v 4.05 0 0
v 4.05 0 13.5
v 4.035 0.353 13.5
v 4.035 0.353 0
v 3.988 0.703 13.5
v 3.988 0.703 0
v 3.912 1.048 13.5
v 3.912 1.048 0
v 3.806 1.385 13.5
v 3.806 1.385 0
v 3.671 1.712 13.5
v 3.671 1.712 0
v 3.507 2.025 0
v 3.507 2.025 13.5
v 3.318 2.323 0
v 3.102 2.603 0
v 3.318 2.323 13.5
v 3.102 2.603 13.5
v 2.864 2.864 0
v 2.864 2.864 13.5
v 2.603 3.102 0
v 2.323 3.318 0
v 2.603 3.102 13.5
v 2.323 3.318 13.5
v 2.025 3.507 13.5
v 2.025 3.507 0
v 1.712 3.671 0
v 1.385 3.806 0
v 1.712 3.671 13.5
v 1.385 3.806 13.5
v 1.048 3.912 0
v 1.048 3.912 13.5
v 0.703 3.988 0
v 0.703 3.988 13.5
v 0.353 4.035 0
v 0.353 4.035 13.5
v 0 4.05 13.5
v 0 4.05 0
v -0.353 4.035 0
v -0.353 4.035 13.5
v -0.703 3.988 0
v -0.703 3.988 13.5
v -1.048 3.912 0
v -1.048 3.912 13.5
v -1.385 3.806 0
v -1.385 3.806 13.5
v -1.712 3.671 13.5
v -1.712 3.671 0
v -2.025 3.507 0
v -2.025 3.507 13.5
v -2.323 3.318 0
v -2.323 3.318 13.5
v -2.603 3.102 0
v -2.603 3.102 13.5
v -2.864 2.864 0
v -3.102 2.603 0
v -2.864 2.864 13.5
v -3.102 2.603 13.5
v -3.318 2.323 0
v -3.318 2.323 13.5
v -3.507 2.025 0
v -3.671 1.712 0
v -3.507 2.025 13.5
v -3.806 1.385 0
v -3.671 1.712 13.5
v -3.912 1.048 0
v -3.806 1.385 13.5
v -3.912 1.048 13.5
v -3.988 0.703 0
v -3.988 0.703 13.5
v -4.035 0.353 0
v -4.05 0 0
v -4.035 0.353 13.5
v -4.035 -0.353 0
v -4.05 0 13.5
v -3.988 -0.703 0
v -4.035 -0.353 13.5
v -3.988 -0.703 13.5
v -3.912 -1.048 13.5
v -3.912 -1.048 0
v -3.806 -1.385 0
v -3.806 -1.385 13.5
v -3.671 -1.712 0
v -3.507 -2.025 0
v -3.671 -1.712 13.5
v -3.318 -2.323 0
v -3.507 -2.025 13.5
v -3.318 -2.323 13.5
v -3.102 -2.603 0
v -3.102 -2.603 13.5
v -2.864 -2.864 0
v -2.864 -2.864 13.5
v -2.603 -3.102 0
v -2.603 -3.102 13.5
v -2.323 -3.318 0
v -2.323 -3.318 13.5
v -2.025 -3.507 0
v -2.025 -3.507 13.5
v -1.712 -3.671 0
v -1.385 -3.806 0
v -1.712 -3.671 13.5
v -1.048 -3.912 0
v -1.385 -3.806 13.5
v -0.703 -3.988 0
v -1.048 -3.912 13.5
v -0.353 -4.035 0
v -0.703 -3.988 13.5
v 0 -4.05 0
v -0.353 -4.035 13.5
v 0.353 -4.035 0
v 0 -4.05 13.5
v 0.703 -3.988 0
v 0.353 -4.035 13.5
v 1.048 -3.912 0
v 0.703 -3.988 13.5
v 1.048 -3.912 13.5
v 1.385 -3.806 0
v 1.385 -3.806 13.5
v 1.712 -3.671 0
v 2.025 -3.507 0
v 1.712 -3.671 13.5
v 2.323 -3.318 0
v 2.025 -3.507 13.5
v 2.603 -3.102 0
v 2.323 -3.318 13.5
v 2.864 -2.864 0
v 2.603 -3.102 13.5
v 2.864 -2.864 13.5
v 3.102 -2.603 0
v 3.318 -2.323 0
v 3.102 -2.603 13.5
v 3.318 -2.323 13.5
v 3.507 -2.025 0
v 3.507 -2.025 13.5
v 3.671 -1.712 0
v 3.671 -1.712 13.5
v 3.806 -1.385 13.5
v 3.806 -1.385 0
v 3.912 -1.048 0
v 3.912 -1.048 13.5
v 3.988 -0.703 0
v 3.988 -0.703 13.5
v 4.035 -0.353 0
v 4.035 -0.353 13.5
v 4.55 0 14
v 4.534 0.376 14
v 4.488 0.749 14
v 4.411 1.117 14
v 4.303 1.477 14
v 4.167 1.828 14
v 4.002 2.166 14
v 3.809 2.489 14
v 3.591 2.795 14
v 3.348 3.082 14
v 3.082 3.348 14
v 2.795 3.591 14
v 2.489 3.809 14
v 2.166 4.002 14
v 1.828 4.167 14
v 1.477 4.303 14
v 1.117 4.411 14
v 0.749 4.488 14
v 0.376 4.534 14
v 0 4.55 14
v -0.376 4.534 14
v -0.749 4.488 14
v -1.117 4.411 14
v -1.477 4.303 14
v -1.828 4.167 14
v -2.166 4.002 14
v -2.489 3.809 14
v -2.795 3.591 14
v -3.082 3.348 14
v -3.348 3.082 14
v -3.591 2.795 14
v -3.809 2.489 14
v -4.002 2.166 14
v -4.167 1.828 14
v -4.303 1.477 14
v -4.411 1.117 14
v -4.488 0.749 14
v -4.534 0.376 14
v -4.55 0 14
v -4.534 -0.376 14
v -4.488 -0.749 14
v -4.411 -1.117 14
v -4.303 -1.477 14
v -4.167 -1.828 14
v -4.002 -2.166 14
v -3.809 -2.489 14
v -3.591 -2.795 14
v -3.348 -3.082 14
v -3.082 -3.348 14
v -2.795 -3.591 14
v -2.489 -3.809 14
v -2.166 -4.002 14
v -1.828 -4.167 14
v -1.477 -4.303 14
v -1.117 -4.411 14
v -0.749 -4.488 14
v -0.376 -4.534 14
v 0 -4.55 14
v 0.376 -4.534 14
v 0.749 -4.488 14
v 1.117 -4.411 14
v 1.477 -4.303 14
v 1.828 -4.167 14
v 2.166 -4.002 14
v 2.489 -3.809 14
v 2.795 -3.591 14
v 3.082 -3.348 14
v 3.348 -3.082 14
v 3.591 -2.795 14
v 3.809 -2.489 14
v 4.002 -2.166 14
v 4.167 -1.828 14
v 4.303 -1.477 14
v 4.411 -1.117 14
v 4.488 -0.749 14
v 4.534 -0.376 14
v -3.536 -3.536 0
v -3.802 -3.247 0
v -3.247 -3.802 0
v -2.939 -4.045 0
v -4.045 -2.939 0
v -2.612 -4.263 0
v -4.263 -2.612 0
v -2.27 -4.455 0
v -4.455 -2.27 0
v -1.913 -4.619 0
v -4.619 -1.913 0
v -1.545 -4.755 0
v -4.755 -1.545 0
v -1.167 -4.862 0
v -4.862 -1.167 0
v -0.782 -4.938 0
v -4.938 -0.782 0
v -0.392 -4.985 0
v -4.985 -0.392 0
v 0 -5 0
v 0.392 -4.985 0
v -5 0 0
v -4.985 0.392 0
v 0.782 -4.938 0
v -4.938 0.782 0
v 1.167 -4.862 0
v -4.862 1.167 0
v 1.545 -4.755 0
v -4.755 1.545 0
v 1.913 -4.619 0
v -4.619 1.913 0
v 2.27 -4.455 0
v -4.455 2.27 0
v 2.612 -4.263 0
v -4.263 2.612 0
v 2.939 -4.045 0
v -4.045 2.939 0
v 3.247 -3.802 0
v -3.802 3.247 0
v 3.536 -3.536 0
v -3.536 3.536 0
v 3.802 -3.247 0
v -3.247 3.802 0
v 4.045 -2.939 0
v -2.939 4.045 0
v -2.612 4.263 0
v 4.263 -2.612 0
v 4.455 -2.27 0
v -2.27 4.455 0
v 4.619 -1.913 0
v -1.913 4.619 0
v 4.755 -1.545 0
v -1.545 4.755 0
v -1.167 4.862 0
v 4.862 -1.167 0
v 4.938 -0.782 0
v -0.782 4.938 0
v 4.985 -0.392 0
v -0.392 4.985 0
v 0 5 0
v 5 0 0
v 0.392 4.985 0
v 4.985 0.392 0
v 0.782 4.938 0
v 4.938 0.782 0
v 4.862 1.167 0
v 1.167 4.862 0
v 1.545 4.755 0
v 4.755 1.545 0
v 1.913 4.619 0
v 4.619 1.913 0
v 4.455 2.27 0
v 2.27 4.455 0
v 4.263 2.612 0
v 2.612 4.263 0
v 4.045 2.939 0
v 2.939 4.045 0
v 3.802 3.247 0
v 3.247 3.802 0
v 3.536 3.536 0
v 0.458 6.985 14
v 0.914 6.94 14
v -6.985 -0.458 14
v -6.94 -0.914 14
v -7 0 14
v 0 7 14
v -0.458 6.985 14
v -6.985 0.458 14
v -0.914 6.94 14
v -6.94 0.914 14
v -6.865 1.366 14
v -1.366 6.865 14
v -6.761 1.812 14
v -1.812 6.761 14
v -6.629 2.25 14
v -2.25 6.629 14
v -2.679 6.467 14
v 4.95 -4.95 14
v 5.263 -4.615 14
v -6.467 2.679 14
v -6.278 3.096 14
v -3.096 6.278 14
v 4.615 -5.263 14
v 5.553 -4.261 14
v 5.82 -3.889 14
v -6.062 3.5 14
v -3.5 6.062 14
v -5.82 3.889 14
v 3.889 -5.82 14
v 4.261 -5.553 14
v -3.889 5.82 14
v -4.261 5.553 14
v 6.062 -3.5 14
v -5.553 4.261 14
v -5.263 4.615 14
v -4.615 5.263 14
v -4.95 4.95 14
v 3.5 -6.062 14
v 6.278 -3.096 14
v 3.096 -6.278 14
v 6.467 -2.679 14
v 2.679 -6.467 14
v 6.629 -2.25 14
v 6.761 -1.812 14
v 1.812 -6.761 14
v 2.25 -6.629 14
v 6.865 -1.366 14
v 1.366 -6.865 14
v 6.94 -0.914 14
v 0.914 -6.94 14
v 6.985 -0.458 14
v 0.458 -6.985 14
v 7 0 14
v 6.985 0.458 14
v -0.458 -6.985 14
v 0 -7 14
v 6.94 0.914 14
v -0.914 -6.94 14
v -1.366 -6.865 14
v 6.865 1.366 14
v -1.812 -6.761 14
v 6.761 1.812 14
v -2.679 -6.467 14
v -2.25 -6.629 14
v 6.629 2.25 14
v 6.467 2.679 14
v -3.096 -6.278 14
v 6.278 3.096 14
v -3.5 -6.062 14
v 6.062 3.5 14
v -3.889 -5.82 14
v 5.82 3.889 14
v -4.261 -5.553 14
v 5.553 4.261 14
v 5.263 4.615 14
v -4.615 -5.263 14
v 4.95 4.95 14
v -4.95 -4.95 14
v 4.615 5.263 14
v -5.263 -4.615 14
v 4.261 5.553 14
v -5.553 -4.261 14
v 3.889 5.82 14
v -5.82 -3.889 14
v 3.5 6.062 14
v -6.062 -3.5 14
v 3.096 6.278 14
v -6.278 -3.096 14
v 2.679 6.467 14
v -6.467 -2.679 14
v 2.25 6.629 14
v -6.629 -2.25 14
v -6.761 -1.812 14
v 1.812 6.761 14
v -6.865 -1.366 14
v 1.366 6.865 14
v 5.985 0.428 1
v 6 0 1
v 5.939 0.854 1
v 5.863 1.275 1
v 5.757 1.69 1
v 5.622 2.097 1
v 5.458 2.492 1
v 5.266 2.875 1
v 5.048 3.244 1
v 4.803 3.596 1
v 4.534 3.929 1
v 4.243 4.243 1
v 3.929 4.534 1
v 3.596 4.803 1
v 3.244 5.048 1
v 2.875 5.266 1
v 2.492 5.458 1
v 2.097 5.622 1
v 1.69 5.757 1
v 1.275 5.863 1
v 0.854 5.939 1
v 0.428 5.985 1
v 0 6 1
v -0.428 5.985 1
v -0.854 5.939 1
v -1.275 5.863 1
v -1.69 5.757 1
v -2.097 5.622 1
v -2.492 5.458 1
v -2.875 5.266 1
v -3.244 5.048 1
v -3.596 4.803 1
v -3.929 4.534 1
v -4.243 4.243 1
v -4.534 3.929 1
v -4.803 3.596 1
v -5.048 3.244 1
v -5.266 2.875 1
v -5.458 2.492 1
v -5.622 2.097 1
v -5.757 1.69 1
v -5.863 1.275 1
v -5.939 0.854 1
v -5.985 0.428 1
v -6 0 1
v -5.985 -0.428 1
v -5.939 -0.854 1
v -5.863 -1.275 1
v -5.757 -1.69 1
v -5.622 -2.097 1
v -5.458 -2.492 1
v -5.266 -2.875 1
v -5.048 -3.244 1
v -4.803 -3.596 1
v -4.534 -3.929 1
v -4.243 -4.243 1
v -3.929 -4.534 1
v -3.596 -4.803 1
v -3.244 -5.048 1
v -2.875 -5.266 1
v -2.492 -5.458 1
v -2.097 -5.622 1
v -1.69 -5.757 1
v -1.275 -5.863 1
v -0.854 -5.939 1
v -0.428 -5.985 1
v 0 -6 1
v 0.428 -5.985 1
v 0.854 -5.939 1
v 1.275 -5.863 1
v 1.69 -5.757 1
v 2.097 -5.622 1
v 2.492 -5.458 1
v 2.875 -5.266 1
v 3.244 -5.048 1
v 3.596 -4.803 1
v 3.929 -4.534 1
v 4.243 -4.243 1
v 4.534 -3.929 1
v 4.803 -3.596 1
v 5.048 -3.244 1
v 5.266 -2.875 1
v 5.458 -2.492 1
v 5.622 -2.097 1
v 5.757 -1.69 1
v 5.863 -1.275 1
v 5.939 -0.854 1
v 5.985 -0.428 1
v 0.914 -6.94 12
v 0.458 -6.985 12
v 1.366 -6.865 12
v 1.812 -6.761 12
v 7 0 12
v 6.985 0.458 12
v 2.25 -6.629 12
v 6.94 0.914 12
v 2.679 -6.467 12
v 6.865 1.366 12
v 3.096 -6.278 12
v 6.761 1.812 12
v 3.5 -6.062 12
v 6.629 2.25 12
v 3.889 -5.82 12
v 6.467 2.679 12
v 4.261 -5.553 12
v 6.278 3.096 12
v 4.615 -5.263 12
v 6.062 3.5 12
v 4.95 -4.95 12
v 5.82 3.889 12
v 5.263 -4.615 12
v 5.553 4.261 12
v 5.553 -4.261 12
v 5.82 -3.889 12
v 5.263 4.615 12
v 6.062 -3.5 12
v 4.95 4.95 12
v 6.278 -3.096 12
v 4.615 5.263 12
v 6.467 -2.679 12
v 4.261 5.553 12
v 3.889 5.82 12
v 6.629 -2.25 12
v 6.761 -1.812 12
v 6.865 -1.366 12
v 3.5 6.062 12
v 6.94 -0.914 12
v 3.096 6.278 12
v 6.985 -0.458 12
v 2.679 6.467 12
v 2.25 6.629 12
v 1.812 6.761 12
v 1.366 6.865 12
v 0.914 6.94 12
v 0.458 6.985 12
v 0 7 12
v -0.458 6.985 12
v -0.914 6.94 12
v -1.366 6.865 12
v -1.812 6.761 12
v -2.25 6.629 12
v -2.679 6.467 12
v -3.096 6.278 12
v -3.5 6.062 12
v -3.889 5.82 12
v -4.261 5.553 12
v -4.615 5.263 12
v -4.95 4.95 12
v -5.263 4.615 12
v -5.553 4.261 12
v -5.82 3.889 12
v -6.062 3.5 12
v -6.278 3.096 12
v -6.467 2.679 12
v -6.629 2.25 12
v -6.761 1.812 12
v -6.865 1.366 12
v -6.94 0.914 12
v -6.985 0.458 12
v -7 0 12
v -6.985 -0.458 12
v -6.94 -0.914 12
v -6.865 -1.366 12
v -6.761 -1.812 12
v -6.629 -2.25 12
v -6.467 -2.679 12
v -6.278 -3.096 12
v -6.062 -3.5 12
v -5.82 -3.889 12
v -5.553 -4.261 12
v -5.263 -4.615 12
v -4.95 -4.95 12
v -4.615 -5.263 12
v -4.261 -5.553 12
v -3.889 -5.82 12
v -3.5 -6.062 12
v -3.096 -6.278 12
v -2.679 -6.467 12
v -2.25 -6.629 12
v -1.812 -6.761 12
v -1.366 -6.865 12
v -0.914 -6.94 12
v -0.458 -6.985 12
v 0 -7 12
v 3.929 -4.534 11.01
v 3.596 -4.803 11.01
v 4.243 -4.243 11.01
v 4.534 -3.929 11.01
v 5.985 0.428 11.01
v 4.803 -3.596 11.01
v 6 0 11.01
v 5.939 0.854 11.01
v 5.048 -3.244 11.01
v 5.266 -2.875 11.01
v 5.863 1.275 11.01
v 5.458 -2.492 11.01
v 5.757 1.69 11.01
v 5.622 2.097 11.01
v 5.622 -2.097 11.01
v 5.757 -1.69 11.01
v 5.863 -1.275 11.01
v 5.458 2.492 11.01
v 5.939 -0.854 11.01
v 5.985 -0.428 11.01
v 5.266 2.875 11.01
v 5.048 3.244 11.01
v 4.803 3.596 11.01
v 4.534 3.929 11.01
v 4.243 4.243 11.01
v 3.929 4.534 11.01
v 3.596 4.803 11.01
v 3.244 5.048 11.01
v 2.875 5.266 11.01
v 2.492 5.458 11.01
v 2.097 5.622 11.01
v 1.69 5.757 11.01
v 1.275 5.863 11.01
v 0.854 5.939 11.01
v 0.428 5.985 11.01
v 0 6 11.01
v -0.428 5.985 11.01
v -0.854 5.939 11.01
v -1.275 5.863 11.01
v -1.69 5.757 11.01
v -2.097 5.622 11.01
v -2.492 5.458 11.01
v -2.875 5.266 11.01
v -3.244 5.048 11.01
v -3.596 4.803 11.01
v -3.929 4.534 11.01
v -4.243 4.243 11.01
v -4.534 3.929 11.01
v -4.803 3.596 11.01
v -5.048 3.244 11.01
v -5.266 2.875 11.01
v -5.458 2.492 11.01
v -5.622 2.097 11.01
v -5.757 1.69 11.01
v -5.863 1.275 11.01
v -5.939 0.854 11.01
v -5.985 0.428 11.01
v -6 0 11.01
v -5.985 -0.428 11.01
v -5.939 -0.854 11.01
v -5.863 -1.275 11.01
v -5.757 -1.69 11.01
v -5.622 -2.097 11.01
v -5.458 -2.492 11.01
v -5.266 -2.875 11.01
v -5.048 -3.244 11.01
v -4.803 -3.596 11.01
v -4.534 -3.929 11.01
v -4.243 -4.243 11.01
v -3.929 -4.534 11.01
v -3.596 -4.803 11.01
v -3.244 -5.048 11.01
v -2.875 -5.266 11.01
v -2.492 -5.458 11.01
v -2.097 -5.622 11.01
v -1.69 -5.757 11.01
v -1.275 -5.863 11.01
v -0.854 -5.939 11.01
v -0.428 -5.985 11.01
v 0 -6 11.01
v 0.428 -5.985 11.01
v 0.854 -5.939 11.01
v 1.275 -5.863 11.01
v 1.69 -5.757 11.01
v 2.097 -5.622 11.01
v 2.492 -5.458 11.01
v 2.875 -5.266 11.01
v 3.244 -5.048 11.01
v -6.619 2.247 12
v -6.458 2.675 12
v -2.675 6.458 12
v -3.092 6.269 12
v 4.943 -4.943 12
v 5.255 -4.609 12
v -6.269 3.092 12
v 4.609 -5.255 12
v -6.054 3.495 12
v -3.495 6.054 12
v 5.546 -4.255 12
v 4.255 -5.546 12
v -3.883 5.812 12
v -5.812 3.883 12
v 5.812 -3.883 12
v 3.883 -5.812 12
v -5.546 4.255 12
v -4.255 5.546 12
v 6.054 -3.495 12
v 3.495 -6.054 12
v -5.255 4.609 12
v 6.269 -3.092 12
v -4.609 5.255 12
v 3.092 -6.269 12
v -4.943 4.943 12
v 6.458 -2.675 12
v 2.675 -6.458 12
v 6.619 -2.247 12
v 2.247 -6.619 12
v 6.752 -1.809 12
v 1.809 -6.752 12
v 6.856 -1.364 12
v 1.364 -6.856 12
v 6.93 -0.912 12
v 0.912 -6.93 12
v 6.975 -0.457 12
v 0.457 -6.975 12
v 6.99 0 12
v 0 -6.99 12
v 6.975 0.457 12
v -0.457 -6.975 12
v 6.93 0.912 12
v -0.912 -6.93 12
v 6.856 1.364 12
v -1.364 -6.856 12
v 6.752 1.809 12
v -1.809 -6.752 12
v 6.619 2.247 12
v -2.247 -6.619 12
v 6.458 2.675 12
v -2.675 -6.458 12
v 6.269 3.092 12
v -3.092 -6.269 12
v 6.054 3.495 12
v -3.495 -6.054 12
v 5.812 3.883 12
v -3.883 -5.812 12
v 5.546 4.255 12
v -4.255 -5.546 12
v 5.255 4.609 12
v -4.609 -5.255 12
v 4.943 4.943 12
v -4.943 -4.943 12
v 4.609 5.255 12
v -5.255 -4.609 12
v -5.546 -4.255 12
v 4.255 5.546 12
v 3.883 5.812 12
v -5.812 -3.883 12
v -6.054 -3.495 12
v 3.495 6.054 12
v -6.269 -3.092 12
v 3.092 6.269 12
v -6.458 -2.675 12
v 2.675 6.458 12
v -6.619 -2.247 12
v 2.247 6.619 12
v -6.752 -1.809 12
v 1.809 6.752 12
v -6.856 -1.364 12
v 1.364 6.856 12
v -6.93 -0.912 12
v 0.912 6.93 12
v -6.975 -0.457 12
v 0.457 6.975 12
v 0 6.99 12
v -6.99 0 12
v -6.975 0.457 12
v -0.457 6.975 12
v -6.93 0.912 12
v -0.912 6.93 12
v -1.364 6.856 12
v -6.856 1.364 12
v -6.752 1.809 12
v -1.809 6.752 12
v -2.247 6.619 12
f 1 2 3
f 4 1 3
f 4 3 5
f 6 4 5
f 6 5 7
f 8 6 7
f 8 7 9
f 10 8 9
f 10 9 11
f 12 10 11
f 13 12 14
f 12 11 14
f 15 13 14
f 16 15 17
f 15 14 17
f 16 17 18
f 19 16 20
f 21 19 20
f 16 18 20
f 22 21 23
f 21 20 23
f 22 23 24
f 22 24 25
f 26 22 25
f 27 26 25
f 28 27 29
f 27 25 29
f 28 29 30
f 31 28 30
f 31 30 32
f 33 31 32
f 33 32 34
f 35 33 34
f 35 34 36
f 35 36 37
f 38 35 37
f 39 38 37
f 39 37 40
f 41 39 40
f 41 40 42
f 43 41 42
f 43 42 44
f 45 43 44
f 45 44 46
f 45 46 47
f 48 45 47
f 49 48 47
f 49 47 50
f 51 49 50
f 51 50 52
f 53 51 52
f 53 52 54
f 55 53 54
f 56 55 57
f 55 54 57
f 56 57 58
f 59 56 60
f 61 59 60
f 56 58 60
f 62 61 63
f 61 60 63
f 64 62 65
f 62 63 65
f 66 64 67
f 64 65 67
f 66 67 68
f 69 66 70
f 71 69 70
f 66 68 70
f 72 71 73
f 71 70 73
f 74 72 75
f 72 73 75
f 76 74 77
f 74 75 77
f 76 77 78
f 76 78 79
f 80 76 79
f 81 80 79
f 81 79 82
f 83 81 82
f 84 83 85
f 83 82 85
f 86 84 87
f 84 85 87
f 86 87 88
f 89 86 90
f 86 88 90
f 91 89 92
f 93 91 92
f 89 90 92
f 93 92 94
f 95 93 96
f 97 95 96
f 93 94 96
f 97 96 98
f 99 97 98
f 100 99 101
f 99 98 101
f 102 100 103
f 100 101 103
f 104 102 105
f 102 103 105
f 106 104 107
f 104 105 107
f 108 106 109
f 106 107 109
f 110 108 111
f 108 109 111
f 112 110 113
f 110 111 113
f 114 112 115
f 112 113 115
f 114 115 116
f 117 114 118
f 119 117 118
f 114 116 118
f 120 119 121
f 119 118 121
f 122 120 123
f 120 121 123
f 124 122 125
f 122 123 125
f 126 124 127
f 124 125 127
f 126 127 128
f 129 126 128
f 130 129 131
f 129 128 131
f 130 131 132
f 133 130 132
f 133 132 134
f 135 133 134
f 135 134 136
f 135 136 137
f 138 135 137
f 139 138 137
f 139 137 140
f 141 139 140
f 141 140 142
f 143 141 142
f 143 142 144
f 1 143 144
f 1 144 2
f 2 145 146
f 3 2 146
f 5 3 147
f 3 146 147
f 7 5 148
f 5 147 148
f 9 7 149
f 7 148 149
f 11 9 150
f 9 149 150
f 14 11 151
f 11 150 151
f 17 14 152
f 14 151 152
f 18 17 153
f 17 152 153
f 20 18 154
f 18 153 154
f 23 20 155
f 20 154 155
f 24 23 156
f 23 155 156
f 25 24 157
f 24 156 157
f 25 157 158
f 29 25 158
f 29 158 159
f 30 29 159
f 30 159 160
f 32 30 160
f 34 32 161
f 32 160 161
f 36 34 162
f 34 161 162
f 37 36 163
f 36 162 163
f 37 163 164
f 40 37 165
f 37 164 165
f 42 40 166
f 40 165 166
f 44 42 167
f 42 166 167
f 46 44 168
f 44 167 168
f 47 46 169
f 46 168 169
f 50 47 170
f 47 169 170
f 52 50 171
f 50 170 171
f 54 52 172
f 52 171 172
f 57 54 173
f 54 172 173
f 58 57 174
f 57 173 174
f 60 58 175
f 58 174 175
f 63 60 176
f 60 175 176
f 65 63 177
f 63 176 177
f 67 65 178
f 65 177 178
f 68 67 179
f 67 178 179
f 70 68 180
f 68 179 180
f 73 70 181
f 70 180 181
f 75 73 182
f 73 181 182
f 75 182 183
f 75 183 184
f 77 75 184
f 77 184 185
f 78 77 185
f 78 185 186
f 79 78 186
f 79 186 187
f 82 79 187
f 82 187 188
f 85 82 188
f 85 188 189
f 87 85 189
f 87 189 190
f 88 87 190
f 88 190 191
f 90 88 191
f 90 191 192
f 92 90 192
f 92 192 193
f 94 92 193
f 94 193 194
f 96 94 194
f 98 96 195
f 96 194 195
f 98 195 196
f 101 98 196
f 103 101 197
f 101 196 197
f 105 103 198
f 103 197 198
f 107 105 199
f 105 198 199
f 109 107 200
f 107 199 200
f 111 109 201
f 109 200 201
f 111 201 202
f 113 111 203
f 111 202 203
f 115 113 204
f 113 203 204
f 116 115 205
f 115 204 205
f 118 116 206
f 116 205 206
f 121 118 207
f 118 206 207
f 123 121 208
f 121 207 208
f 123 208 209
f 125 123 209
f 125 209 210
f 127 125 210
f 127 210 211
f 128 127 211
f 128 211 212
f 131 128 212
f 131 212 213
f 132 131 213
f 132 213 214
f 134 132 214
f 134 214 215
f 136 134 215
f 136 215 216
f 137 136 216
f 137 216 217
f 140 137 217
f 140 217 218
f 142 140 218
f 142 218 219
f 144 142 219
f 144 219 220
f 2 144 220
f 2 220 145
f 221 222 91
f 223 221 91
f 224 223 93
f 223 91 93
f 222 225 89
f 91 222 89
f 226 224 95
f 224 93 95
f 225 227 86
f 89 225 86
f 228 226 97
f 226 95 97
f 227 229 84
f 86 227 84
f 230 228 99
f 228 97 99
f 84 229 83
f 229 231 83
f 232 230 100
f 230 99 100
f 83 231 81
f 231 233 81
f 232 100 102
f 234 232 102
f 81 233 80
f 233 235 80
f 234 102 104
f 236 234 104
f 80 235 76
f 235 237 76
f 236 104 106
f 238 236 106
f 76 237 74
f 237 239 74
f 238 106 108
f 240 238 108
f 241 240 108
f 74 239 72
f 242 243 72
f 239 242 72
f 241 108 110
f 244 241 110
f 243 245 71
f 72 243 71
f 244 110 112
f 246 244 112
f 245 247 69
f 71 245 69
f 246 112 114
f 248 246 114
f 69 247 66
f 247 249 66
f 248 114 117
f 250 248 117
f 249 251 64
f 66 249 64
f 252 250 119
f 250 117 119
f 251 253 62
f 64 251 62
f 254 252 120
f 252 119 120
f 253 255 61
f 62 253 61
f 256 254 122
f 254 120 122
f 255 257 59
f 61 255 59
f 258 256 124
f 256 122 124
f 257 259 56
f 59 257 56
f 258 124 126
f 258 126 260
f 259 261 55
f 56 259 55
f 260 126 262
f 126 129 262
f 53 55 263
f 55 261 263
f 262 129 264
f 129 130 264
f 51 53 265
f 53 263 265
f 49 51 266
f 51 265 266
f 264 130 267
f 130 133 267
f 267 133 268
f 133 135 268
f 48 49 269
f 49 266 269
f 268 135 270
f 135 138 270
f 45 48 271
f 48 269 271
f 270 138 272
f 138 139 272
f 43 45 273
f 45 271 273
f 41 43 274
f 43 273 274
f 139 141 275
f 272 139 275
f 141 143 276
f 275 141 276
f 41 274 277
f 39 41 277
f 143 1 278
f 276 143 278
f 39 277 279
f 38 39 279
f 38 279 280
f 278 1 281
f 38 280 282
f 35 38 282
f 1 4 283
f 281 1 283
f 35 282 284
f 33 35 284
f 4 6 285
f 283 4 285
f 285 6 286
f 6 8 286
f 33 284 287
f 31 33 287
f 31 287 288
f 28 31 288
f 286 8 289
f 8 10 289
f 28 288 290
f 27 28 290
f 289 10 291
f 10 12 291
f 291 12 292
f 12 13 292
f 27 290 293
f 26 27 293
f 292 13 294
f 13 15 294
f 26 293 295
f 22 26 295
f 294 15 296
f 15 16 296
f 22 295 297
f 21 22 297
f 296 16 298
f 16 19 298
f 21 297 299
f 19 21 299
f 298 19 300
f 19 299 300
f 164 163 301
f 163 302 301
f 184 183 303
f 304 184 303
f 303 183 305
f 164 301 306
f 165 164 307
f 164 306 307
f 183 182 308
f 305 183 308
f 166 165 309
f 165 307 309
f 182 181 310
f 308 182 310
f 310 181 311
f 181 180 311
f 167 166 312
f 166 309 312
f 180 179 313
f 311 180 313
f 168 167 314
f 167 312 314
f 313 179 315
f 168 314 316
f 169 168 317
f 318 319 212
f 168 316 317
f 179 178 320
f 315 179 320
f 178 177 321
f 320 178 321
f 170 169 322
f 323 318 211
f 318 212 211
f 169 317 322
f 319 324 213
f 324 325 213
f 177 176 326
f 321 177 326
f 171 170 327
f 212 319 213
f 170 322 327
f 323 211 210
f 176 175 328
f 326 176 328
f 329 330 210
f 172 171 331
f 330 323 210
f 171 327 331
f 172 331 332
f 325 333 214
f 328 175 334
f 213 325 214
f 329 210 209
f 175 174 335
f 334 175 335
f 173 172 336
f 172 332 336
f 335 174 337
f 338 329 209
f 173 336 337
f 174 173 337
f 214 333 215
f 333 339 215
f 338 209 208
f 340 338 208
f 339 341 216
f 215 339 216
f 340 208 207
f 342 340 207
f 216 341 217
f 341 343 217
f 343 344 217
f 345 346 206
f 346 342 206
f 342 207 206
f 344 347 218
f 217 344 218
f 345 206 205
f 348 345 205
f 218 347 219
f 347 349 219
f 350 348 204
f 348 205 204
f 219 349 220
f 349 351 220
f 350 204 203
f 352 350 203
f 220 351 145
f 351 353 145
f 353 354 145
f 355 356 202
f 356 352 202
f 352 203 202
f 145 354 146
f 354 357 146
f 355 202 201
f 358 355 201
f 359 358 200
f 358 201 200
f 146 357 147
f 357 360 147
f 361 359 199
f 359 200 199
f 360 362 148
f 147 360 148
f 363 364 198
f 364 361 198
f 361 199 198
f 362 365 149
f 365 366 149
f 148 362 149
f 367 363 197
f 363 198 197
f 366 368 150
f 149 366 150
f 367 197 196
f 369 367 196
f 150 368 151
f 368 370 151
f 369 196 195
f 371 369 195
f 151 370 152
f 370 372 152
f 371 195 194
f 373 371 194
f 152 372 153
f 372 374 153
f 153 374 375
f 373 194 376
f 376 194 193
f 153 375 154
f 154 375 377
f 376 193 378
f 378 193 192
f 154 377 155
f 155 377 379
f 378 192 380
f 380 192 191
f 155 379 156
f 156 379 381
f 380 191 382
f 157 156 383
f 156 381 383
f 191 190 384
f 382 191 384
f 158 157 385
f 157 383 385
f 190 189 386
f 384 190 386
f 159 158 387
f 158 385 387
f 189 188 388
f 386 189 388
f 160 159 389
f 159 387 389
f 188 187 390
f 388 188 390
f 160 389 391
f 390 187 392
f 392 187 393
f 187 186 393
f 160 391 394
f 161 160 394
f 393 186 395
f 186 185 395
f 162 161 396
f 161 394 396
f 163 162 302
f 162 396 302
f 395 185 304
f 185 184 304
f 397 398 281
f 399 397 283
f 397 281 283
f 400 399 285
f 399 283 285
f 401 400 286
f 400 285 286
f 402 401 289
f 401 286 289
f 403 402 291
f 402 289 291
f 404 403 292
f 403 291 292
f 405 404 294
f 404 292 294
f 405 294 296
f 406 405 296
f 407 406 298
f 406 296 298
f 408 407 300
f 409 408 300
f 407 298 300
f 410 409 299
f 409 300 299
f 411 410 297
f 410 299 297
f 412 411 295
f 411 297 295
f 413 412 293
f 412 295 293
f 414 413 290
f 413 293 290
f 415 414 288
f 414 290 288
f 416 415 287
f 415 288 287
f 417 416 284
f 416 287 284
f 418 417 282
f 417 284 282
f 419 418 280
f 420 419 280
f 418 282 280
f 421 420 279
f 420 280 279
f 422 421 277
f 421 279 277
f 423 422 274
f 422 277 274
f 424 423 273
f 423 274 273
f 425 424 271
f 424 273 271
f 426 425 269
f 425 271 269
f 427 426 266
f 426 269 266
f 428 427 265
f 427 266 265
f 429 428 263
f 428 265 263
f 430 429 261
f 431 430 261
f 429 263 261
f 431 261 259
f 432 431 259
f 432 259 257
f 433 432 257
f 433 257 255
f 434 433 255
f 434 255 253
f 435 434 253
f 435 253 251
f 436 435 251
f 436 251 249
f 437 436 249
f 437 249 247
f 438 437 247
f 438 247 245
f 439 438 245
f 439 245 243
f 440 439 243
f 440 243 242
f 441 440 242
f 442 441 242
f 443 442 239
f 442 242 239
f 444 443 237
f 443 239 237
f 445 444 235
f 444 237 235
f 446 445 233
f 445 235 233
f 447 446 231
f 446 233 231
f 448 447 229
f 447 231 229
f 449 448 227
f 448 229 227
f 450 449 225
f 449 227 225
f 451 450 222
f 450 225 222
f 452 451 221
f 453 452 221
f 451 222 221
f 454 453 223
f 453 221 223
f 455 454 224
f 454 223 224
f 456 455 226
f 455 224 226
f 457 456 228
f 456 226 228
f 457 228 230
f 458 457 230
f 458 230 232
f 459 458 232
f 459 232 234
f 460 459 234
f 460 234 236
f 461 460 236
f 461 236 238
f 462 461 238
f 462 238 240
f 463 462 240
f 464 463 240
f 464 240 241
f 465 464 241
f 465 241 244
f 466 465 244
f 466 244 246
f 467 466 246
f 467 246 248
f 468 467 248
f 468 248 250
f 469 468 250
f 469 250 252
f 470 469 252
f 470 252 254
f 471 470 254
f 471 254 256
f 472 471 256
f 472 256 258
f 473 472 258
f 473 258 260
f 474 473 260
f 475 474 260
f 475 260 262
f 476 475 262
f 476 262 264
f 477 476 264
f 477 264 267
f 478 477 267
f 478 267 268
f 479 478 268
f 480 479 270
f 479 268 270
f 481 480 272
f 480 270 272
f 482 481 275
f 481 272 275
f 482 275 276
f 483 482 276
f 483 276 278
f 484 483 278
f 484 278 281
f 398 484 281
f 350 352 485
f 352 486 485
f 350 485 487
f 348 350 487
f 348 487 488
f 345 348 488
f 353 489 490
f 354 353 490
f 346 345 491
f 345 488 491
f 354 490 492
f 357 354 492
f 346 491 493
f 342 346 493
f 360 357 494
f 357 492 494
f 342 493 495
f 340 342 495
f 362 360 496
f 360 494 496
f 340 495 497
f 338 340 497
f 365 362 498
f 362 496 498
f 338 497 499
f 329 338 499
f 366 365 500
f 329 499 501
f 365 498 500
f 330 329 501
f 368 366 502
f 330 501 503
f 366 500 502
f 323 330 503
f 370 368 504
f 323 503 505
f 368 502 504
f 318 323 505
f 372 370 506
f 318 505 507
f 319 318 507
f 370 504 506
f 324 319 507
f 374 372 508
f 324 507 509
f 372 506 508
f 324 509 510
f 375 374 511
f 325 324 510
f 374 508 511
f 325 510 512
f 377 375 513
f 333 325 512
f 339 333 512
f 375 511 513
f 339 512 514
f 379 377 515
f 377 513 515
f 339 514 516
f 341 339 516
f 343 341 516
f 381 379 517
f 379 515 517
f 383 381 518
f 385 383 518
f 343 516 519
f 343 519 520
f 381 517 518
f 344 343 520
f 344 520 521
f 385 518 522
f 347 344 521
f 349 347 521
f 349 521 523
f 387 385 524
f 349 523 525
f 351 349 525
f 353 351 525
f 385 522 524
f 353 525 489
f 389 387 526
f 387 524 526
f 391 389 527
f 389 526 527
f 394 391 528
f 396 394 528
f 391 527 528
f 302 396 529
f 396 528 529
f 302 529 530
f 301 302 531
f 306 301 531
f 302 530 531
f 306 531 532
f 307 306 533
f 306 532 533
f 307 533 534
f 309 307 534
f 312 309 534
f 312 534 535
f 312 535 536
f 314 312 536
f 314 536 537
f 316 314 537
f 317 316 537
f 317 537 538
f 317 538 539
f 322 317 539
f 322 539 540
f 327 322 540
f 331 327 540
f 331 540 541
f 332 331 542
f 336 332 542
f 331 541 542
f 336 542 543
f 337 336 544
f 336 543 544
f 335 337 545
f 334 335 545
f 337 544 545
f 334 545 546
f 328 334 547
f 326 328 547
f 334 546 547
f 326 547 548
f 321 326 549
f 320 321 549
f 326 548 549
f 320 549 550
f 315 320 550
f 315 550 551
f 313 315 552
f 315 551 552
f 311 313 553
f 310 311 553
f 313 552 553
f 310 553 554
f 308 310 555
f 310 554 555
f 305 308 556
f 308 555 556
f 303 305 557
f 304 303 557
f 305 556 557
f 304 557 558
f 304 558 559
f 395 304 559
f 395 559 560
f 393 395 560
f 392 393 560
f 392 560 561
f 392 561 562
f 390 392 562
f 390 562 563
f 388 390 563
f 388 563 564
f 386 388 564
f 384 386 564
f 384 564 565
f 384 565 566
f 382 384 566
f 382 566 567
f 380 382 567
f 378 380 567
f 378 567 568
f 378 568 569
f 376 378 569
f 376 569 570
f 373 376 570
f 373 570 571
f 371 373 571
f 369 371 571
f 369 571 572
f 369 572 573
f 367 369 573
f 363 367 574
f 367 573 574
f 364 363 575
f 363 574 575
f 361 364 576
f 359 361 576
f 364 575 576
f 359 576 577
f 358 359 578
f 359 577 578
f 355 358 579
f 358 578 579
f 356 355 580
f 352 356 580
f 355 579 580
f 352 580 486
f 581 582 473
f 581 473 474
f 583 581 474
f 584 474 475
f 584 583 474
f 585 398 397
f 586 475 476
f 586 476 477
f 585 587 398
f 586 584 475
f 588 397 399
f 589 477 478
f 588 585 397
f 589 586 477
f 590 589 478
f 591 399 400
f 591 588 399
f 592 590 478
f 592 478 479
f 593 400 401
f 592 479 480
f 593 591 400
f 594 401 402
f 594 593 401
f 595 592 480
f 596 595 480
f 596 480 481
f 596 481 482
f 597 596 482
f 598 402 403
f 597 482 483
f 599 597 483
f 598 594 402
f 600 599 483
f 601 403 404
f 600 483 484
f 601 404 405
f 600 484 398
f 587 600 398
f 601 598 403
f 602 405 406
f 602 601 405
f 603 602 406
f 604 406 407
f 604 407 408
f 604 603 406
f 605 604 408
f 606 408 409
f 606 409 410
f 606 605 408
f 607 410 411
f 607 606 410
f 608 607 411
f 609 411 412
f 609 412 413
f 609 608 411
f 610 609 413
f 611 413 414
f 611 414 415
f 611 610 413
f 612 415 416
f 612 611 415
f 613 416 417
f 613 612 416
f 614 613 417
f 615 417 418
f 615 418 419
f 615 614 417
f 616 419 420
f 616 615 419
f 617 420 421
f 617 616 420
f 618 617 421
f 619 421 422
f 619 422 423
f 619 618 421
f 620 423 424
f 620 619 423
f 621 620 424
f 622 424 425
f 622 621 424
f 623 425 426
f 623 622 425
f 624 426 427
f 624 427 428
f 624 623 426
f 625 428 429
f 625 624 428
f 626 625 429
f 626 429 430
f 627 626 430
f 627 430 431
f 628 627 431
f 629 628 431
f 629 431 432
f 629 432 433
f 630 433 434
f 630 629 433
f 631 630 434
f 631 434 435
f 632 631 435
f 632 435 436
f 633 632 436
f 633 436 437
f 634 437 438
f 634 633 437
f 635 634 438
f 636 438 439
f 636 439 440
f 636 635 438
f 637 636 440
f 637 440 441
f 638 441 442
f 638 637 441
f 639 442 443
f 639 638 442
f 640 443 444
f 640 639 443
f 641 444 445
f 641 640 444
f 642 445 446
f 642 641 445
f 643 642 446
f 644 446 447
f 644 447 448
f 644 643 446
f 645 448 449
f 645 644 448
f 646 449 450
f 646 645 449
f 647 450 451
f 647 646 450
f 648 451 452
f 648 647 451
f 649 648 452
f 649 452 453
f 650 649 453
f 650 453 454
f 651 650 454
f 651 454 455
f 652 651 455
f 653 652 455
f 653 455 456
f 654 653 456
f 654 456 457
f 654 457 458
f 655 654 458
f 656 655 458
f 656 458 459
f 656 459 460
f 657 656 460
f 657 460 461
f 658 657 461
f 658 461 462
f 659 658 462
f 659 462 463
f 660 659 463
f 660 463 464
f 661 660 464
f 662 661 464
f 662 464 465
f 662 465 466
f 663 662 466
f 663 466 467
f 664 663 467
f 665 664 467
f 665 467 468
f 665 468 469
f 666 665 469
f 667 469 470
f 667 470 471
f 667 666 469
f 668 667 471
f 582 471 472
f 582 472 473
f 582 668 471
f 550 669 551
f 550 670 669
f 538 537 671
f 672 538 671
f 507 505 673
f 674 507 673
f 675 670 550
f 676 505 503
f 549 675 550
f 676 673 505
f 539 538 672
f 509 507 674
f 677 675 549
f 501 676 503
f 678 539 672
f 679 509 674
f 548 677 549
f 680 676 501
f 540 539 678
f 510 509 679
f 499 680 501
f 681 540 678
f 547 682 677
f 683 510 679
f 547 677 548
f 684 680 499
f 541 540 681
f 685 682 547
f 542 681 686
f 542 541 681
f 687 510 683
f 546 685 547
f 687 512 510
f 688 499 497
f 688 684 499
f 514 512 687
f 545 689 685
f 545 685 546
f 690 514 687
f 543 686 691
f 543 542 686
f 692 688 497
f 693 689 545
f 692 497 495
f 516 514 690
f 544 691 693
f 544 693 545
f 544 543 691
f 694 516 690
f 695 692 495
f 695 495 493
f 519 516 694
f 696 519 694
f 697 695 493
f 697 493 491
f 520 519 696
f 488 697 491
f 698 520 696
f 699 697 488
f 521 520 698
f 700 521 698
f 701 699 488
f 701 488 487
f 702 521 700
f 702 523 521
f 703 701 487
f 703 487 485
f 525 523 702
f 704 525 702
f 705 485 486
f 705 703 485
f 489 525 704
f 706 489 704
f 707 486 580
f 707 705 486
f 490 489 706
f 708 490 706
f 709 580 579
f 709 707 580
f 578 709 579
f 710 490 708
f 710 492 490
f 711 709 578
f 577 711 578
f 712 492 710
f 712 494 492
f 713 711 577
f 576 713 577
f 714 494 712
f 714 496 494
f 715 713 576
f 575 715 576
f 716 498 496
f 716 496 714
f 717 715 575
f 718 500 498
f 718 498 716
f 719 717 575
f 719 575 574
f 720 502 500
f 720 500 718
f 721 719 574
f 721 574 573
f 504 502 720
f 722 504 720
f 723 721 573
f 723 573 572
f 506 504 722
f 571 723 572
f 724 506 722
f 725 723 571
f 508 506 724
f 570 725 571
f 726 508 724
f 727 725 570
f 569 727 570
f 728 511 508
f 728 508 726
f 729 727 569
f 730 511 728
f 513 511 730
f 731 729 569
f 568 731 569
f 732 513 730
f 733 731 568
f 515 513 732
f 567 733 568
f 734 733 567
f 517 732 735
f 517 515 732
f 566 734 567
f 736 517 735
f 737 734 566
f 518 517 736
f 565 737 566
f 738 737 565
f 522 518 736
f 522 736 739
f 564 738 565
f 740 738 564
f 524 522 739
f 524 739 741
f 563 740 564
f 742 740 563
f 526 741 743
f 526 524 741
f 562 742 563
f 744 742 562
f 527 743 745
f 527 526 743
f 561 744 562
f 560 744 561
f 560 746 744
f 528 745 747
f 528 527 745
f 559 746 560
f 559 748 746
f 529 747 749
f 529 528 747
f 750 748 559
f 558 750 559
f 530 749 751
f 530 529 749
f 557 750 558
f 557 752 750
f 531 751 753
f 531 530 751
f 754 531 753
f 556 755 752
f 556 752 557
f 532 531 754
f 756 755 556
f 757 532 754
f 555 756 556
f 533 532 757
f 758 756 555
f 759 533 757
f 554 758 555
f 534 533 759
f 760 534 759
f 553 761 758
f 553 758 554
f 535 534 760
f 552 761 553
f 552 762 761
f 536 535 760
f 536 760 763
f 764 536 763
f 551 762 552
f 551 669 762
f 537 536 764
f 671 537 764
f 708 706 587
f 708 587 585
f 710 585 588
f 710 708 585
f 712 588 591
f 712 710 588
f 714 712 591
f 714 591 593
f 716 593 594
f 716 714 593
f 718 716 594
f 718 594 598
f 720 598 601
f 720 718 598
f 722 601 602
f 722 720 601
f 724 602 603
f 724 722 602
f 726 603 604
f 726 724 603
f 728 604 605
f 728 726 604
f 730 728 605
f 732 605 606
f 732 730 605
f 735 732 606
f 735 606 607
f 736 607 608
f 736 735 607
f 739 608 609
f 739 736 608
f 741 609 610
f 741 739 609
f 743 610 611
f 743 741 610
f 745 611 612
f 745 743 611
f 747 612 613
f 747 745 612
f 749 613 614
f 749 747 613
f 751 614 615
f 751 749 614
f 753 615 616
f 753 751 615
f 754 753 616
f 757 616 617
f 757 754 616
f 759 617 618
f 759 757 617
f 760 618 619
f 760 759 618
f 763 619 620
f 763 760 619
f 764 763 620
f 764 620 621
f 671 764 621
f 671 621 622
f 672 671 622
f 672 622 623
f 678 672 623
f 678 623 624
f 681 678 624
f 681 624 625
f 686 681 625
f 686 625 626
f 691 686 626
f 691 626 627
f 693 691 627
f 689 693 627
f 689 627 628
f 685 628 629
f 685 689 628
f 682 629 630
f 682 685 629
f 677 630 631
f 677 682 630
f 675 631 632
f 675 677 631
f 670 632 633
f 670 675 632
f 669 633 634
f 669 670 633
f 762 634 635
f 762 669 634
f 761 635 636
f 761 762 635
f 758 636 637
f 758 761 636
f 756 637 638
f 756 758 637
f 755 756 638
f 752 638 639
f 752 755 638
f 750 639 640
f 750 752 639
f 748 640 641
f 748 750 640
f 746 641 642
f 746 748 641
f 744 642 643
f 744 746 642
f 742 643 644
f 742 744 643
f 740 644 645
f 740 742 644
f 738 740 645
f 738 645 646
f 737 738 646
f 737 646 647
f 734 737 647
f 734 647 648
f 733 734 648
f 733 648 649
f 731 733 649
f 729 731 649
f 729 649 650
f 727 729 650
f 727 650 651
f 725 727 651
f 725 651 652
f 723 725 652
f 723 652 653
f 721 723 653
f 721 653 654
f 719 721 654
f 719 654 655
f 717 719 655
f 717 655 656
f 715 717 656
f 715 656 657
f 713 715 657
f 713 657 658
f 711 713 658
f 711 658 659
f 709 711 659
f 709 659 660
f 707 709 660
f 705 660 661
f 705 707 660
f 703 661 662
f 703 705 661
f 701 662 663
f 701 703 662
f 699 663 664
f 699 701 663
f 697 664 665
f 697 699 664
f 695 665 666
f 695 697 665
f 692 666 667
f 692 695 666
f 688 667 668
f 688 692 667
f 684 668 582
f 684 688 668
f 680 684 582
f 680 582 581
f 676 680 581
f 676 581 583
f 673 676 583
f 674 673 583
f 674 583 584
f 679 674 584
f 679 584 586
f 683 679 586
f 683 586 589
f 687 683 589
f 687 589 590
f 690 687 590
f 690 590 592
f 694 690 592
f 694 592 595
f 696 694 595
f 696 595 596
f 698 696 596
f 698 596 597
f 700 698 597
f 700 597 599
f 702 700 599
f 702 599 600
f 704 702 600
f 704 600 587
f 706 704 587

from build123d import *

# Parameters (mm, degrees)
CYLINDER001_R     = 4.05
CYLINDER001_DEPTH = 28
CYLINDER_R        = 6
CYLINDER_DEPTH    = 12
SKETCH_R          = 7
PAD_DEPTH         = 2
CHAMFER_SIZE      = 0.99
CHAMFER001_SIZE   = 1
CHAMFER002_SIZE   = 0.5


with BuildPart() as cilindro001:
    # Cylinder001 → Cylinder001 (new body)
    with BuildSketch(Plane.XY.offset(-1)):
        Circle(CYLINDER001_R)
    extrude(amount=CYLINDER001_DEPTH)


with BuildPart() as chamfer002:
    # Cylinder → Cylinder (new body)
    with BuildSketch(Plane.XY):
        Circle(CYLINDER_R)
    extrude(amount=CYLINDER_DEPTH)

    # Sketch → Pad (new body)
    with BuildSketch(Plane.XY.offset(12)):
        Circle(SKETCH_R)
    extrude(amount=PAD_DEPTH)

    # Cut: cut Cilindro001
    add(cilindro001.part, mode=Mode.SUBTRACT)

    # Chamfer
    chamfer_edges = [chamfer002.edges().sort_by_distance(p)[0] for p in [
        (-6, 0, 12),
    ]]
    chamfer(chamfer_edges, length=CHAMFER_SIZE)

    # Chamfer001
    chamfer001_edges = [chamfer002.edges().sort_by_distance(p)[0] for p in [
        (-6, 0, 0),
    ]]
    chamfer(chamfer001_edges, length=CHAMFER001_SIZE)

    # Chamfer002
    chamfer002_edges = [chamfer002.edges().sort_by_distance(p)[0] for p in [
        (-4.05, 0, 14),
    ]]
    chamfer(chamfer002_edges, length=CHAMFER002_SIZE)


solid = chamfer002.part
